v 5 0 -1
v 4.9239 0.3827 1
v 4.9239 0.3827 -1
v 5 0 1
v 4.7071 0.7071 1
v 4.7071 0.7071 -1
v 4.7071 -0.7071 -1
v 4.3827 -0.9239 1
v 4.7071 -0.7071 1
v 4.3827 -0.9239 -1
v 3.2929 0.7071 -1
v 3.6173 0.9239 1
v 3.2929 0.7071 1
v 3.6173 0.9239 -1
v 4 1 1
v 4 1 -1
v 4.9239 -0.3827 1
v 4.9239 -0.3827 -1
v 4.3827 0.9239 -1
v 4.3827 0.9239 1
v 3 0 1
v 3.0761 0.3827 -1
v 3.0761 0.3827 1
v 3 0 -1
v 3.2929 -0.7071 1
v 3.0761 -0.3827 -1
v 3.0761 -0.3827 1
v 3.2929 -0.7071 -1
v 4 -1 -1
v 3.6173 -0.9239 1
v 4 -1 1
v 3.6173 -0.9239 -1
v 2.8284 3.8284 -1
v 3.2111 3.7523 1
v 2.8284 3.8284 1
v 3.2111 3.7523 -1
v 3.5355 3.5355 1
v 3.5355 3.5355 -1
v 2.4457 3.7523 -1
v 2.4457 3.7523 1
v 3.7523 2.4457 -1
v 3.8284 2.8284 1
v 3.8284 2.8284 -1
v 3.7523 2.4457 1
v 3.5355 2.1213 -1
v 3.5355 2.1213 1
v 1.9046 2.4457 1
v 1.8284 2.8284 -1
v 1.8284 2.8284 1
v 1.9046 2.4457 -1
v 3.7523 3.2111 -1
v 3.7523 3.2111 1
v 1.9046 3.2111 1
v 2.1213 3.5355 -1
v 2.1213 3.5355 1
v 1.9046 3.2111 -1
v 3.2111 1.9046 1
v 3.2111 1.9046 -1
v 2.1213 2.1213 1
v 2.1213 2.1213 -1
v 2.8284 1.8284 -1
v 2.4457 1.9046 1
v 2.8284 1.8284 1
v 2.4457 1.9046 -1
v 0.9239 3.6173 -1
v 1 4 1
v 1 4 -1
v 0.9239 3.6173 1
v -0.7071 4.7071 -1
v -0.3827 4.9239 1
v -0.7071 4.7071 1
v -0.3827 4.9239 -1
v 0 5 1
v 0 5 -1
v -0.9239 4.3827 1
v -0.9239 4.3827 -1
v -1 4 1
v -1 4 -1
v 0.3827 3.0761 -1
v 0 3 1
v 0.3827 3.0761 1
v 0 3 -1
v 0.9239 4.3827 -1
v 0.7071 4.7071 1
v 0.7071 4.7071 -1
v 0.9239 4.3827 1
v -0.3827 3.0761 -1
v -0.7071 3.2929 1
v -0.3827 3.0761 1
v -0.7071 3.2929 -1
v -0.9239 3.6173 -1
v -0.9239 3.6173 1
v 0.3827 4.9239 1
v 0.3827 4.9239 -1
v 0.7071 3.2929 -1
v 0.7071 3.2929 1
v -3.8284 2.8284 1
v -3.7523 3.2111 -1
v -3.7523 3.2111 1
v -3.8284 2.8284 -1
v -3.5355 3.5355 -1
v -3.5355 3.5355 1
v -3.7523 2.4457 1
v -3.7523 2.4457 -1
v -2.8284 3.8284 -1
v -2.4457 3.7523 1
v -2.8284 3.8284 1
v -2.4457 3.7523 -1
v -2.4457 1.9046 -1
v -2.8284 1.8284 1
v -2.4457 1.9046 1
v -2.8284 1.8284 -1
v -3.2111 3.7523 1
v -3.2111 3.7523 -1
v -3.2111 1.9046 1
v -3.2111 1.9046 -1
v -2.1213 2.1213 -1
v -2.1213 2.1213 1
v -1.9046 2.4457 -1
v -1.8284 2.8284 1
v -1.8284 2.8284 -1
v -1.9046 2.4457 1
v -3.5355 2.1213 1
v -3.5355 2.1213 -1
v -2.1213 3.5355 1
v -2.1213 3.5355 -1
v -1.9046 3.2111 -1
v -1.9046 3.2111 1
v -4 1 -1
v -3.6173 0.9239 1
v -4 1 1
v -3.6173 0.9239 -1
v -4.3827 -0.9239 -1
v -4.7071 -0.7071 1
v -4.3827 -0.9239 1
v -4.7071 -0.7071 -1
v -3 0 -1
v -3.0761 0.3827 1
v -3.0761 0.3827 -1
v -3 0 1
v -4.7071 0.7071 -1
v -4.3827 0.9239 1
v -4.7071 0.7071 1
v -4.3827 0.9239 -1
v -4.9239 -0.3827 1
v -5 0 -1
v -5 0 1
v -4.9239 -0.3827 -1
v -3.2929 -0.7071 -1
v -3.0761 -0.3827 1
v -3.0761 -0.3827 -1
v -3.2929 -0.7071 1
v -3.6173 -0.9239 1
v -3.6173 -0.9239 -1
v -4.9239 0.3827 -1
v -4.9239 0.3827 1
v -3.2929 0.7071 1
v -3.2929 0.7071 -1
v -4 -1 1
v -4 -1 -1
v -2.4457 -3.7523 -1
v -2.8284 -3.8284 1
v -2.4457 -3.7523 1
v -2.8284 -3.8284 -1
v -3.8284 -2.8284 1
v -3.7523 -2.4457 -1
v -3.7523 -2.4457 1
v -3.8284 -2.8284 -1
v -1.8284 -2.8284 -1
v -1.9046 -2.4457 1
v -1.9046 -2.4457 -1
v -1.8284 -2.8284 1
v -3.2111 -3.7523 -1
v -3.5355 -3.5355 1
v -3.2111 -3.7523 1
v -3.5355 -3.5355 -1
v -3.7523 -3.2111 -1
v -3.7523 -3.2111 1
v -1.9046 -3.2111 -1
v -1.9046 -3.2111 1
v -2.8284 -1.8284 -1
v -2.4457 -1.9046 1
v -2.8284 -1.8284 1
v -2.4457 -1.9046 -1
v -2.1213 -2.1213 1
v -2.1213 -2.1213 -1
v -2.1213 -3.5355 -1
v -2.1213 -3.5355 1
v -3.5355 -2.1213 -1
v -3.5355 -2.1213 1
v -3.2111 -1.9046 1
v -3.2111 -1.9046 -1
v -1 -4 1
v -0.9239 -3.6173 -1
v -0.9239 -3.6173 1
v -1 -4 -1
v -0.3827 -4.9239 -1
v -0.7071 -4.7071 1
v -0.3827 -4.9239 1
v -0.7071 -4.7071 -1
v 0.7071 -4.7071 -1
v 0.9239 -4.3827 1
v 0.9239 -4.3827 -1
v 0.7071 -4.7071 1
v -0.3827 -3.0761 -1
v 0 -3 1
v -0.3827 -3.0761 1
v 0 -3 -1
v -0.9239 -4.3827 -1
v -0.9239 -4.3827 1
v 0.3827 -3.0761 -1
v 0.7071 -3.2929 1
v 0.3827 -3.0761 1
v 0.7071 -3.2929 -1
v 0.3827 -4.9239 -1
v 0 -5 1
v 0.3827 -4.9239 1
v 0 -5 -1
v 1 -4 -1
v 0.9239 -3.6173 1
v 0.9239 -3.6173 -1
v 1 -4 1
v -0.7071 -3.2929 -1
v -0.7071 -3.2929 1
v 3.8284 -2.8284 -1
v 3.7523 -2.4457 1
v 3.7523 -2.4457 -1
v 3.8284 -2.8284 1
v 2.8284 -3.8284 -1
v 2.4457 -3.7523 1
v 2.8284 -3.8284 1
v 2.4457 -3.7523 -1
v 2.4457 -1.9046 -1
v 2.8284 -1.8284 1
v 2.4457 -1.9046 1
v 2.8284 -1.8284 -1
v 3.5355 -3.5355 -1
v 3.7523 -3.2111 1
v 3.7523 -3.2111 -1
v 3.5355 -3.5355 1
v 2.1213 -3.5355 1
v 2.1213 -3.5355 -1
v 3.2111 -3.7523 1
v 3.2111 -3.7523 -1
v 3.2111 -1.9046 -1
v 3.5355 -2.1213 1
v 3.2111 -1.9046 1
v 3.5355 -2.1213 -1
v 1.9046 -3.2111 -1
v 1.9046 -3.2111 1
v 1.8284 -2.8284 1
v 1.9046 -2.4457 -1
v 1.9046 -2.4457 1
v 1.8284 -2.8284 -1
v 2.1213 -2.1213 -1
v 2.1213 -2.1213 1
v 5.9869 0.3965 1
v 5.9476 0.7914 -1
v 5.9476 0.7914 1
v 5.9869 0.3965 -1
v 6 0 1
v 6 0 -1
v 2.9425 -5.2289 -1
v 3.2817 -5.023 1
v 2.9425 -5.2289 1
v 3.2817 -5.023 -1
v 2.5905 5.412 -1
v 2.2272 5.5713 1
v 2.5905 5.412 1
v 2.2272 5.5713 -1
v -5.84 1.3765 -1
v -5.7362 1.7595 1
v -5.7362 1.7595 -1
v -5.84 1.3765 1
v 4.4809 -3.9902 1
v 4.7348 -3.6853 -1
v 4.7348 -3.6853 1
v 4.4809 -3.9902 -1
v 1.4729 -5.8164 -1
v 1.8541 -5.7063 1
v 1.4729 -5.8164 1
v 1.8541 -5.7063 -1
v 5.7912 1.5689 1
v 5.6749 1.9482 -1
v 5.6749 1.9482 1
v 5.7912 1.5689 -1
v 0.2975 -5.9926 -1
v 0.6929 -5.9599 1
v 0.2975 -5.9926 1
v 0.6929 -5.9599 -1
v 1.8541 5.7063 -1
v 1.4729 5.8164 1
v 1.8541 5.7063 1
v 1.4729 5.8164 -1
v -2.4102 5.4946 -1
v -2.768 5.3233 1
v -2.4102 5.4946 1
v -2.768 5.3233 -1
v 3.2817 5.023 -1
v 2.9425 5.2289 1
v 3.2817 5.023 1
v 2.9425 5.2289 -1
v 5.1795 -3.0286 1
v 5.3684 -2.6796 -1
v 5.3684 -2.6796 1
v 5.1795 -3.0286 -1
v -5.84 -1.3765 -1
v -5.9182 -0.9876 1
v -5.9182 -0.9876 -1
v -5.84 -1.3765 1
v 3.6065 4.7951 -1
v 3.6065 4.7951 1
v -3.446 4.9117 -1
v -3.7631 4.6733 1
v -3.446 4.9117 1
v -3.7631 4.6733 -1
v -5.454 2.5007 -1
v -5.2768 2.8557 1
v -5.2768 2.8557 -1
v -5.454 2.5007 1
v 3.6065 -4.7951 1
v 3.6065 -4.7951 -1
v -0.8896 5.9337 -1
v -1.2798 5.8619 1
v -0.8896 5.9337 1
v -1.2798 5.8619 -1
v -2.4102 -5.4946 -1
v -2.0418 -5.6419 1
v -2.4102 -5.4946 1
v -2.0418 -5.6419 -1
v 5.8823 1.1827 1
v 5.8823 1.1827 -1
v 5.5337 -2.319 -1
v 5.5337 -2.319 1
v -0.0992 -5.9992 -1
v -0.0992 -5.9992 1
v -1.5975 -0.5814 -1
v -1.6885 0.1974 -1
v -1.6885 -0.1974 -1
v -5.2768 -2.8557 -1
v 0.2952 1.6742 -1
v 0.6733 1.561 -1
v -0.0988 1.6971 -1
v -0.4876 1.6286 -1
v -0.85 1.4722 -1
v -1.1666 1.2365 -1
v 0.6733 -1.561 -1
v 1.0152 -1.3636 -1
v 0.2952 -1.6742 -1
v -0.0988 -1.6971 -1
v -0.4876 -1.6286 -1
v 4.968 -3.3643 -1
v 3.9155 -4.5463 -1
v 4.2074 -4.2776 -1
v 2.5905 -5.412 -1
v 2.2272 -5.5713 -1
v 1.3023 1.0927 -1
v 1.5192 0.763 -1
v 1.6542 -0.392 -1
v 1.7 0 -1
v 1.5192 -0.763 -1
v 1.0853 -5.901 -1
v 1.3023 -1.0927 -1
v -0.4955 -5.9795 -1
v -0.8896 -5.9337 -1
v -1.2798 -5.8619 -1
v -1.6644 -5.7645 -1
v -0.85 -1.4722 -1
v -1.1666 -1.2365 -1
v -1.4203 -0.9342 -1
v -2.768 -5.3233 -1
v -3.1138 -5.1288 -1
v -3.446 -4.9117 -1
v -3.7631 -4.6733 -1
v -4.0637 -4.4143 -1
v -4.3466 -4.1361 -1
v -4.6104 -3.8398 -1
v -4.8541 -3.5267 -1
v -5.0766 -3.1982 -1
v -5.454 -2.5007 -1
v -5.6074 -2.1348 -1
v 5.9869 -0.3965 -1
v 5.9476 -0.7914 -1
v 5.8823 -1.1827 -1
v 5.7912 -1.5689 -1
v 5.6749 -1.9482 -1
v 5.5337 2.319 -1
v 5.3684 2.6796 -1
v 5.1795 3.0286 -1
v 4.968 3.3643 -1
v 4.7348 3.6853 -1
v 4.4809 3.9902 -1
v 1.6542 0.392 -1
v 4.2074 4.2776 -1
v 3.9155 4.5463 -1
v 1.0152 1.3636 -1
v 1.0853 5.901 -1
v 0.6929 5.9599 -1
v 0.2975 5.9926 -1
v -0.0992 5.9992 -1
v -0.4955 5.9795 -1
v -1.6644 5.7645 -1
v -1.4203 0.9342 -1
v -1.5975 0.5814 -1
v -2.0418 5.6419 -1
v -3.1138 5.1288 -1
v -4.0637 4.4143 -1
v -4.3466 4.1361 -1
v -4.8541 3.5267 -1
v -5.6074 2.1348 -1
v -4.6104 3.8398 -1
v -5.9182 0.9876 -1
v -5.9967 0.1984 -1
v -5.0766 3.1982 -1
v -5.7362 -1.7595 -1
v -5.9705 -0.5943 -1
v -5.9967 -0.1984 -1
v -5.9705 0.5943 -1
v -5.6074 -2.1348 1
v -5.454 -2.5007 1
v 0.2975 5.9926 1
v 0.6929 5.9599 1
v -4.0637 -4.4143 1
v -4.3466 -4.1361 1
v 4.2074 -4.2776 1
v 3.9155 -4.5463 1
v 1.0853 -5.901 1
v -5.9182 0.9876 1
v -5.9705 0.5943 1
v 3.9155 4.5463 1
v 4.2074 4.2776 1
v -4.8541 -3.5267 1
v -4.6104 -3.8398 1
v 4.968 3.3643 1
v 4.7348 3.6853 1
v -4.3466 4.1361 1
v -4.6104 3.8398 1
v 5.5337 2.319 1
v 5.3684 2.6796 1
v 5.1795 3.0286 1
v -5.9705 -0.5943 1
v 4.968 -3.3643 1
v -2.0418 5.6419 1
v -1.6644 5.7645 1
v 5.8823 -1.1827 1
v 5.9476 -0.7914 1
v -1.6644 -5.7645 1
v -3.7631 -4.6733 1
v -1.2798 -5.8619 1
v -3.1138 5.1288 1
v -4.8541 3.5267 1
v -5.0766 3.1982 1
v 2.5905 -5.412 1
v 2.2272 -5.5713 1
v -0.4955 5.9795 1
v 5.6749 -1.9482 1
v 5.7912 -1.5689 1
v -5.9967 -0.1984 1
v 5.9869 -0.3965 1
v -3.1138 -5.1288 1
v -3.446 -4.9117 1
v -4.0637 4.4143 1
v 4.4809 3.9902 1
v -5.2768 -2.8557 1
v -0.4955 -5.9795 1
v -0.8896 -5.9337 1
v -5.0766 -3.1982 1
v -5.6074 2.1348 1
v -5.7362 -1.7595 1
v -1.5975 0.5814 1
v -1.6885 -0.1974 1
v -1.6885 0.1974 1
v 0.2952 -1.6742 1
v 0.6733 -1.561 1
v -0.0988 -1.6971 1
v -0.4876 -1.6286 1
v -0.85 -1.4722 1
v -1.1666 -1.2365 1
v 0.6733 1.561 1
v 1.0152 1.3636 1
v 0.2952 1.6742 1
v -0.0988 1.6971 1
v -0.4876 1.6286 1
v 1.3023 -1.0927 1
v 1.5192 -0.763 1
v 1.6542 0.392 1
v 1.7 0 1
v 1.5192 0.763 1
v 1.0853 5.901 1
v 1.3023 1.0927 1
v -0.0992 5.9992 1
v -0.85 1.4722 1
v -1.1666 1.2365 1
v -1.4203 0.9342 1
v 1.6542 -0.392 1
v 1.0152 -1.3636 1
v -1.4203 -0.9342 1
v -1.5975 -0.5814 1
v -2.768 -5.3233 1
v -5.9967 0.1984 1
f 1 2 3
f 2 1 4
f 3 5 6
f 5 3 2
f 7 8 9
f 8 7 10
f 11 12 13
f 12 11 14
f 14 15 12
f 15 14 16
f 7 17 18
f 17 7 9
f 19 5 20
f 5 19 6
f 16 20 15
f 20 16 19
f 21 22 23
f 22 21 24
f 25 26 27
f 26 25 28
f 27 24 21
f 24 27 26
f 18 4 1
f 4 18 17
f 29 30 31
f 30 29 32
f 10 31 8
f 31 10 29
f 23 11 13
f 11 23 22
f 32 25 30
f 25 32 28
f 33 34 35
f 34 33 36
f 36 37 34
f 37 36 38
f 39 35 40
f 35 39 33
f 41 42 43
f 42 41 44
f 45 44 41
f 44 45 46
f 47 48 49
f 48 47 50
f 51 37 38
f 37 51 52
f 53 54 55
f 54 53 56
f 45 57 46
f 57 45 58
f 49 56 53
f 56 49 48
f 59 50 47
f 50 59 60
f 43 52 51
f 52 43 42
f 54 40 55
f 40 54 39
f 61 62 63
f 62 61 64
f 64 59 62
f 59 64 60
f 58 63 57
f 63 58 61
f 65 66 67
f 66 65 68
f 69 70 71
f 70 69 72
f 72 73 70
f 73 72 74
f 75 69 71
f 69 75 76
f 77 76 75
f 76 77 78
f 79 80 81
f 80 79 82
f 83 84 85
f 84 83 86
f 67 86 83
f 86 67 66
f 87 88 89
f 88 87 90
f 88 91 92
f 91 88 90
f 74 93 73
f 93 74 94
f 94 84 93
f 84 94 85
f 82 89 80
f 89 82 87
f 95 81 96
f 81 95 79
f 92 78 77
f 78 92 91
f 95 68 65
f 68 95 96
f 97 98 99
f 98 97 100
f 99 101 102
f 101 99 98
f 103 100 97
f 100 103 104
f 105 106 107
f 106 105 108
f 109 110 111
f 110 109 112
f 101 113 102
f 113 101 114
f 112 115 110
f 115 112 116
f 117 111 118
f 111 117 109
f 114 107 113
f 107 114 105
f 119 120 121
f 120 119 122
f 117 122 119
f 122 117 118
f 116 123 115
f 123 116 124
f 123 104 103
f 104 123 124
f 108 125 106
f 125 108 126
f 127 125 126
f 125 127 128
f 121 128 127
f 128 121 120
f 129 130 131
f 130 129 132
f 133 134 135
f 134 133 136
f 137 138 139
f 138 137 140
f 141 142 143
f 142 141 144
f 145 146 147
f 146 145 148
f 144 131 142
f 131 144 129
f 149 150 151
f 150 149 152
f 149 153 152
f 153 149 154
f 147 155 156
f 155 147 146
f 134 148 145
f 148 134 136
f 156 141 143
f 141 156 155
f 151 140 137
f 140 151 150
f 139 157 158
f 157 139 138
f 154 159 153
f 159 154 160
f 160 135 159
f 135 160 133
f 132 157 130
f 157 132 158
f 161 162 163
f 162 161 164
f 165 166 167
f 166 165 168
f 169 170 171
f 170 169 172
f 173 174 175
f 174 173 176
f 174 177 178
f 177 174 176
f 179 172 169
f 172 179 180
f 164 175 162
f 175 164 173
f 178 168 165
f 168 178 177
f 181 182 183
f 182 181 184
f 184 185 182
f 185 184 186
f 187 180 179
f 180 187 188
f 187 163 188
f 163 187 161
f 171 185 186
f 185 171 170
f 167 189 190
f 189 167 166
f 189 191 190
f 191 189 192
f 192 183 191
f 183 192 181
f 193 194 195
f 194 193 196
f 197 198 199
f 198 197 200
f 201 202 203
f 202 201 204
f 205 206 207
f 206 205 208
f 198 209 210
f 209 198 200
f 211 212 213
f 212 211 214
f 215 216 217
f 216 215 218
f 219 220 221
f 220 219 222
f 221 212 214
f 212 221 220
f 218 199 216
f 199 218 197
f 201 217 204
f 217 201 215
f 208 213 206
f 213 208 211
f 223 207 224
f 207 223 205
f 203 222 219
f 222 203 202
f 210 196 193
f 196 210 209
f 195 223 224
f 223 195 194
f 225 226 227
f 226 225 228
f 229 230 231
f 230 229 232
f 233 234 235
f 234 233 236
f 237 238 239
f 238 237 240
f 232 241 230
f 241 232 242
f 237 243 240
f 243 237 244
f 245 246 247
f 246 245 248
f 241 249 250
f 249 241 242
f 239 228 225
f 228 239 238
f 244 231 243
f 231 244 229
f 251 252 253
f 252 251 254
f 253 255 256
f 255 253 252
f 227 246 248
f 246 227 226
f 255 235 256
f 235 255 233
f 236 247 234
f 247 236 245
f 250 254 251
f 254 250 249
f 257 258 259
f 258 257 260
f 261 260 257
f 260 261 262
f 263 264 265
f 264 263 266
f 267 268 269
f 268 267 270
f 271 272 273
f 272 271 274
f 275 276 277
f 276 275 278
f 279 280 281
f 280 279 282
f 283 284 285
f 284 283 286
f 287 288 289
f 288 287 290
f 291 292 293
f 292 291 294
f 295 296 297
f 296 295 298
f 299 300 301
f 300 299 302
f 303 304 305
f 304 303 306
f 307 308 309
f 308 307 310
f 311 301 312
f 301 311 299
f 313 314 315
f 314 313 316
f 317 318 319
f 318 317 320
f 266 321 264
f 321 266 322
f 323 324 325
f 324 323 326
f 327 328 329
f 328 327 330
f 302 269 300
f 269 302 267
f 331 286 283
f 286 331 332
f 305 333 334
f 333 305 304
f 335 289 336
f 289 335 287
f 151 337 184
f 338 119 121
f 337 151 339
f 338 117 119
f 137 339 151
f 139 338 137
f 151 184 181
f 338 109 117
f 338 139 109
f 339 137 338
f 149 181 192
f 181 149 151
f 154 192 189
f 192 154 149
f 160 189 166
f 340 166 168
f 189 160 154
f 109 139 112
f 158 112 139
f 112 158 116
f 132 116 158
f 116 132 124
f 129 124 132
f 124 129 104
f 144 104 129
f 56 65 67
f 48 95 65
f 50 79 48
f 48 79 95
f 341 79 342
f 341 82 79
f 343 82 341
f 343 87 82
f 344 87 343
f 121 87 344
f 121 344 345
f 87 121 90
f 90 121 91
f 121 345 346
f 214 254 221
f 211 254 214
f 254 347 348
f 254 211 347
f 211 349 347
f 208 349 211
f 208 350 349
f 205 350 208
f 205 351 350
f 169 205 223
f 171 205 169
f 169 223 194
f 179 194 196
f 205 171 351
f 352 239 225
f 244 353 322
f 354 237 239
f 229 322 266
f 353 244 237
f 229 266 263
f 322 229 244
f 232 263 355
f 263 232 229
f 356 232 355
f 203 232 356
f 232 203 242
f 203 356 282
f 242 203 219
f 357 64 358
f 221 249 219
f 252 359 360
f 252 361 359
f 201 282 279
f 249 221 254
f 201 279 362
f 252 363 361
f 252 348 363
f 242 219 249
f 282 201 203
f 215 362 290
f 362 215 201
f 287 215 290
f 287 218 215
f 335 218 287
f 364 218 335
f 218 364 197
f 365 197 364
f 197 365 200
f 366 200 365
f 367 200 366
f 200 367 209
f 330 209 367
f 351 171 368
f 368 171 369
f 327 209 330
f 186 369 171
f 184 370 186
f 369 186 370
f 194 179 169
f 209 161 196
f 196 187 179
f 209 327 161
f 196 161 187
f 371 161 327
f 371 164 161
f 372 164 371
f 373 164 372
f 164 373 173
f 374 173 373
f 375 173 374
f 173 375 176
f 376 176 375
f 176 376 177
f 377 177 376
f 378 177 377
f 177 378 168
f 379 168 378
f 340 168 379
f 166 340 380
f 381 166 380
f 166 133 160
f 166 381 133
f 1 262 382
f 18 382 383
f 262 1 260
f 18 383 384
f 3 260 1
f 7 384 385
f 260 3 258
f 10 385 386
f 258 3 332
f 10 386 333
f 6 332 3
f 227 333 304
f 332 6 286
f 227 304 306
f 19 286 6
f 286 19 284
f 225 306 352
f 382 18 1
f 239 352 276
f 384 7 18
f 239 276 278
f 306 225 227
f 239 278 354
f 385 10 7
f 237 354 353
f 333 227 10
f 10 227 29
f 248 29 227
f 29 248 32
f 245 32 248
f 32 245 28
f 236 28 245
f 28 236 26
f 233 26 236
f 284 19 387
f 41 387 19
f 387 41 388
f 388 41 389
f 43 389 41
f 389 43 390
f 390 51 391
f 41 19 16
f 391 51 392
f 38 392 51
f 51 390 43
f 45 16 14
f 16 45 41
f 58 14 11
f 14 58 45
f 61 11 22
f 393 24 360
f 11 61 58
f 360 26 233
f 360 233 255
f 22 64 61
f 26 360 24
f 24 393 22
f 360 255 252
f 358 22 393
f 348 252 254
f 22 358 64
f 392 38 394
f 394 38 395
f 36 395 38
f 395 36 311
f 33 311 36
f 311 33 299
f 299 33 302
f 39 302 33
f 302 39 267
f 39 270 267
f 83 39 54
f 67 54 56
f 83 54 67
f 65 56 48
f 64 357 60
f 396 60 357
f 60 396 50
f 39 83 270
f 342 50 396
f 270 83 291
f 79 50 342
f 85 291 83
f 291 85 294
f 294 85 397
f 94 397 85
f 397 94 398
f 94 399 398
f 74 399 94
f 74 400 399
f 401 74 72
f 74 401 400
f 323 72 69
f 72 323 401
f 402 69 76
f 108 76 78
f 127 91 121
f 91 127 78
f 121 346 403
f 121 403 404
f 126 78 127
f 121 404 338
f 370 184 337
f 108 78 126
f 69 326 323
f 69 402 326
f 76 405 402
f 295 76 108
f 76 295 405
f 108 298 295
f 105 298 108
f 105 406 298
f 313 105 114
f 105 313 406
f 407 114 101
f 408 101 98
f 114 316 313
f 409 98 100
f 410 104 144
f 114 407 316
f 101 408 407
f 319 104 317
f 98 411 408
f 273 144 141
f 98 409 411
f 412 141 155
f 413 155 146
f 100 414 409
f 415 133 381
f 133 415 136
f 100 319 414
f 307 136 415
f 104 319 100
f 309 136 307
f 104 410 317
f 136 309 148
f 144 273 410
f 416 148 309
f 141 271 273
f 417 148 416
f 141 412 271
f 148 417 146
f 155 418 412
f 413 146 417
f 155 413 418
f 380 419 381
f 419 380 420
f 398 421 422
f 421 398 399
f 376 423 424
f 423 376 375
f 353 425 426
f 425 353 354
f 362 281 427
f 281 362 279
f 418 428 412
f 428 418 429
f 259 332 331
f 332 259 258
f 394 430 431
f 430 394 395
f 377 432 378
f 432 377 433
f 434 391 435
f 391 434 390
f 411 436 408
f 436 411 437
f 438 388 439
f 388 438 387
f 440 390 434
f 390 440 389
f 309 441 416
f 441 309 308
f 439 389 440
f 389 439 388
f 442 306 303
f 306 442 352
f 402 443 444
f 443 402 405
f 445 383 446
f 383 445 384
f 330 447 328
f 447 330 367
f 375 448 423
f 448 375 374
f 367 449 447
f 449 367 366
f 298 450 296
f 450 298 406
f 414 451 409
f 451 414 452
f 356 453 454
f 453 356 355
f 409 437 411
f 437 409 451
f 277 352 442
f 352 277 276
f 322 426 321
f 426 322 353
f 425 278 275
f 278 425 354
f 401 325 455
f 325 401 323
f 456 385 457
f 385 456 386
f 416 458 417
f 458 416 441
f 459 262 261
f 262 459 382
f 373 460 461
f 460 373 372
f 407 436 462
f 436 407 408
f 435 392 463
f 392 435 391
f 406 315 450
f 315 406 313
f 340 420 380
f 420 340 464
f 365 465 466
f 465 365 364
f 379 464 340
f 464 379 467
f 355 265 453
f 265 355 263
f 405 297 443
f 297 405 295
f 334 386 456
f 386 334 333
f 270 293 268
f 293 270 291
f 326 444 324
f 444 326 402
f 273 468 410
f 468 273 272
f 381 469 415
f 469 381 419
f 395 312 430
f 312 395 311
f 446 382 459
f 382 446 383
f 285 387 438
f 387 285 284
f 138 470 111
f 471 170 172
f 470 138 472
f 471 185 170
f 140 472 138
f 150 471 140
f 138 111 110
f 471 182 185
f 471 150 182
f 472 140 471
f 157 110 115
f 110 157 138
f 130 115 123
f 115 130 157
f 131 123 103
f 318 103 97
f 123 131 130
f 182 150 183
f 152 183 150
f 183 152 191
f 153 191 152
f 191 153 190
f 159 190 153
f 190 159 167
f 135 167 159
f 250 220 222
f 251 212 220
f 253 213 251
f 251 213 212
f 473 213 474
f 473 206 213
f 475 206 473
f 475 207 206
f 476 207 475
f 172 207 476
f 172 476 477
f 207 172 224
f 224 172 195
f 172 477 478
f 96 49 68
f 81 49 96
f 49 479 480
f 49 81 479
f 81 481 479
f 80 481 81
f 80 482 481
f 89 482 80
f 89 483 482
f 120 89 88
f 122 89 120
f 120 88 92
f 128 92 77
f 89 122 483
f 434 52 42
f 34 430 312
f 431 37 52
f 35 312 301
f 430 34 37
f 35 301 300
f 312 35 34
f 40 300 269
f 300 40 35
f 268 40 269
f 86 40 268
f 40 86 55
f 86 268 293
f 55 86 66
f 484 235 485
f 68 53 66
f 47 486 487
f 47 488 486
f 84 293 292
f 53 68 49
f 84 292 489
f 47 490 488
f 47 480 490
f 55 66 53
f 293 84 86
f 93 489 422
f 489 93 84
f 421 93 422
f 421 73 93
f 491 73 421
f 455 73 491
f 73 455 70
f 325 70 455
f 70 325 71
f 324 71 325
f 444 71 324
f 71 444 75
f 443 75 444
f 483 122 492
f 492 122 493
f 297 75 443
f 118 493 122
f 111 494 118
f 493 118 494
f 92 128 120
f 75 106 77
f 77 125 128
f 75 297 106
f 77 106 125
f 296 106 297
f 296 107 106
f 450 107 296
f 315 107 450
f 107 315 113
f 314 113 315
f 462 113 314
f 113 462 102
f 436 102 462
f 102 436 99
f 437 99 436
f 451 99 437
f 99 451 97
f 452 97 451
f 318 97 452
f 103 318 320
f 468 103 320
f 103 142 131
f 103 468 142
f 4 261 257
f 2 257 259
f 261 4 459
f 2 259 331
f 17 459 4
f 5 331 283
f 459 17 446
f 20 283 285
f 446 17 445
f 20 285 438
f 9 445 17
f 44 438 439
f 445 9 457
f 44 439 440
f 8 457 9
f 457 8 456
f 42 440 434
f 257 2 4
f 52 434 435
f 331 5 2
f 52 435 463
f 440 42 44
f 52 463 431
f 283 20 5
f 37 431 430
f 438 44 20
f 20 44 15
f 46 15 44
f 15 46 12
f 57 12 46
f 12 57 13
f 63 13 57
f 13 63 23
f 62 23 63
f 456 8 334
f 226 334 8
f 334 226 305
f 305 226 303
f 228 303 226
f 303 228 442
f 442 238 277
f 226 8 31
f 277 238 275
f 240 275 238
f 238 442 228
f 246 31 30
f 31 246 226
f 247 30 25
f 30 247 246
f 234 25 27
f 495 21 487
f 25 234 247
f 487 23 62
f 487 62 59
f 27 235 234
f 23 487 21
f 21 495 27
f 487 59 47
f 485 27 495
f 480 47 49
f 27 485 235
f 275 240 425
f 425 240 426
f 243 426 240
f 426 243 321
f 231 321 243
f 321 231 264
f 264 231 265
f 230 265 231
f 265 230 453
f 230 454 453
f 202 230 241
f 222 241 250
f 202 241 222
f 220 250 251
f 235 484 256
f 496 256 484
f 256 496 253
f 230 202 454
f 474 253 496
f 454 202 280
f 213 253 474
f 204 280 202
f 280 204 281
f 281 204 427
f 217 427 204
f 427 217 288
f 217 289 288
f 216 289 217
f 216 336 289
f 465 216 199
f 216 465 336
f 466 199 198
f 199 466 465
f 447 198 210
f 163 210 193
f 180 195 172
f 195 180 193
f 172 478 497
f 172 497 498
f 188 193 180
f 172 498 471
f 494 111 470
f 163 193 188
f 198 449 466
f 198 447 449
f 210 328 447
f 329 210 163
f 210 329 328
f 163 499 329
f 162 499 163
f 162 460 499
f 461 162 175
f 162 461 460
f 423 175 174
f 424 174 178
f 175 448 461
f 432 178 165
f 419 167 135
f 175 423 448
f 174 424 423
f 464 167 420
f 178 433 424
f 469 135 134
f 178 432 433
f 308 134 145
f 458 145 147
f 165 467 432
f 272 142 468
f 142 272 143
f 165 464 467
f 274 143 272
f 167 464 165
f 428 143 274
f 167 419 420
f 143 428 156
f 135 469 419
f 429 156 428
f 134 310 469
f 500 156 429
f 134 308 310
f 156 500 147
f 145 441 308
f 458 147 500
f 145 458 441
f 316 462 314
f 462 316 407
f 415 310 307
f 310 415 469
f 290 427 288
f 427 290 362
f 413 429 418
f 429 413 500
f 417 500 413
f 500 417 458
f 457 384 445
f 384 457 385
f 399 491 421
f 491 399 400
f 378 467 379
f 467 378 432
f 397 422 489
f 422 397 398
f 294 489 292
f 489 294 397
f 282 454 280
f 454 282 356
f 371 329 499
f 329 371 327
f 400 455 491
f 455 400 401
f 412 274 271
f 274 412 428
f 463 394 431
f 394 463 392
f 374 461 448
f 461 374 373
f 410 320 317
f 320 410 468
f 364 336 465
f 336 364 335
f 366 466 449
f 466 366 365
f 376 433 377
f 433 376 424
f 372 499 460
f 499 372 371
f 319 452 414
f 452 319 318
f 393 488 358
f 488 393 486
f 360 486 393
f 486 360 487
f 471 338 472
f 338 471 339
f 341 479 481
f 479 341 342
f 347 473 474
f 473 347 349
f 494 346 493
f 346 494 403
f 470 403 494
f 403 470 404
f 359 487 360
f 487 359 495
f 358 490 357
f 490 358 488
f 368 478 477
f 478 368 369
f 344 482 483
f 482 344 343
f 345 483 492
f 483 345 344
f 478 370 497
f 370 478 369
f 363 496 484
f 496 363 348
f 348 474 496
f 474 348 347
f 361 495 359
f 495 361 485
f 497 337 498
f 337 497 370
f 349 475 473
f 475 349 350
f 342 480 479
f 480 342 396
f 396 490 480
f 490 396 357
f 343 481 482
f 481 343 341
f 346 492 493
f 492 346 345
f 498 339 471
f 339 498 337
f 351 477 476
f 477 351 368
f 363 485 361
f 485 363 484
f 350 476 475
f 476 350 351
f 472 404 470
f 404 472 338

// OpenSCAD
include <lib/tentacle.scad>


round_washer(radius=6, thickness=2);
